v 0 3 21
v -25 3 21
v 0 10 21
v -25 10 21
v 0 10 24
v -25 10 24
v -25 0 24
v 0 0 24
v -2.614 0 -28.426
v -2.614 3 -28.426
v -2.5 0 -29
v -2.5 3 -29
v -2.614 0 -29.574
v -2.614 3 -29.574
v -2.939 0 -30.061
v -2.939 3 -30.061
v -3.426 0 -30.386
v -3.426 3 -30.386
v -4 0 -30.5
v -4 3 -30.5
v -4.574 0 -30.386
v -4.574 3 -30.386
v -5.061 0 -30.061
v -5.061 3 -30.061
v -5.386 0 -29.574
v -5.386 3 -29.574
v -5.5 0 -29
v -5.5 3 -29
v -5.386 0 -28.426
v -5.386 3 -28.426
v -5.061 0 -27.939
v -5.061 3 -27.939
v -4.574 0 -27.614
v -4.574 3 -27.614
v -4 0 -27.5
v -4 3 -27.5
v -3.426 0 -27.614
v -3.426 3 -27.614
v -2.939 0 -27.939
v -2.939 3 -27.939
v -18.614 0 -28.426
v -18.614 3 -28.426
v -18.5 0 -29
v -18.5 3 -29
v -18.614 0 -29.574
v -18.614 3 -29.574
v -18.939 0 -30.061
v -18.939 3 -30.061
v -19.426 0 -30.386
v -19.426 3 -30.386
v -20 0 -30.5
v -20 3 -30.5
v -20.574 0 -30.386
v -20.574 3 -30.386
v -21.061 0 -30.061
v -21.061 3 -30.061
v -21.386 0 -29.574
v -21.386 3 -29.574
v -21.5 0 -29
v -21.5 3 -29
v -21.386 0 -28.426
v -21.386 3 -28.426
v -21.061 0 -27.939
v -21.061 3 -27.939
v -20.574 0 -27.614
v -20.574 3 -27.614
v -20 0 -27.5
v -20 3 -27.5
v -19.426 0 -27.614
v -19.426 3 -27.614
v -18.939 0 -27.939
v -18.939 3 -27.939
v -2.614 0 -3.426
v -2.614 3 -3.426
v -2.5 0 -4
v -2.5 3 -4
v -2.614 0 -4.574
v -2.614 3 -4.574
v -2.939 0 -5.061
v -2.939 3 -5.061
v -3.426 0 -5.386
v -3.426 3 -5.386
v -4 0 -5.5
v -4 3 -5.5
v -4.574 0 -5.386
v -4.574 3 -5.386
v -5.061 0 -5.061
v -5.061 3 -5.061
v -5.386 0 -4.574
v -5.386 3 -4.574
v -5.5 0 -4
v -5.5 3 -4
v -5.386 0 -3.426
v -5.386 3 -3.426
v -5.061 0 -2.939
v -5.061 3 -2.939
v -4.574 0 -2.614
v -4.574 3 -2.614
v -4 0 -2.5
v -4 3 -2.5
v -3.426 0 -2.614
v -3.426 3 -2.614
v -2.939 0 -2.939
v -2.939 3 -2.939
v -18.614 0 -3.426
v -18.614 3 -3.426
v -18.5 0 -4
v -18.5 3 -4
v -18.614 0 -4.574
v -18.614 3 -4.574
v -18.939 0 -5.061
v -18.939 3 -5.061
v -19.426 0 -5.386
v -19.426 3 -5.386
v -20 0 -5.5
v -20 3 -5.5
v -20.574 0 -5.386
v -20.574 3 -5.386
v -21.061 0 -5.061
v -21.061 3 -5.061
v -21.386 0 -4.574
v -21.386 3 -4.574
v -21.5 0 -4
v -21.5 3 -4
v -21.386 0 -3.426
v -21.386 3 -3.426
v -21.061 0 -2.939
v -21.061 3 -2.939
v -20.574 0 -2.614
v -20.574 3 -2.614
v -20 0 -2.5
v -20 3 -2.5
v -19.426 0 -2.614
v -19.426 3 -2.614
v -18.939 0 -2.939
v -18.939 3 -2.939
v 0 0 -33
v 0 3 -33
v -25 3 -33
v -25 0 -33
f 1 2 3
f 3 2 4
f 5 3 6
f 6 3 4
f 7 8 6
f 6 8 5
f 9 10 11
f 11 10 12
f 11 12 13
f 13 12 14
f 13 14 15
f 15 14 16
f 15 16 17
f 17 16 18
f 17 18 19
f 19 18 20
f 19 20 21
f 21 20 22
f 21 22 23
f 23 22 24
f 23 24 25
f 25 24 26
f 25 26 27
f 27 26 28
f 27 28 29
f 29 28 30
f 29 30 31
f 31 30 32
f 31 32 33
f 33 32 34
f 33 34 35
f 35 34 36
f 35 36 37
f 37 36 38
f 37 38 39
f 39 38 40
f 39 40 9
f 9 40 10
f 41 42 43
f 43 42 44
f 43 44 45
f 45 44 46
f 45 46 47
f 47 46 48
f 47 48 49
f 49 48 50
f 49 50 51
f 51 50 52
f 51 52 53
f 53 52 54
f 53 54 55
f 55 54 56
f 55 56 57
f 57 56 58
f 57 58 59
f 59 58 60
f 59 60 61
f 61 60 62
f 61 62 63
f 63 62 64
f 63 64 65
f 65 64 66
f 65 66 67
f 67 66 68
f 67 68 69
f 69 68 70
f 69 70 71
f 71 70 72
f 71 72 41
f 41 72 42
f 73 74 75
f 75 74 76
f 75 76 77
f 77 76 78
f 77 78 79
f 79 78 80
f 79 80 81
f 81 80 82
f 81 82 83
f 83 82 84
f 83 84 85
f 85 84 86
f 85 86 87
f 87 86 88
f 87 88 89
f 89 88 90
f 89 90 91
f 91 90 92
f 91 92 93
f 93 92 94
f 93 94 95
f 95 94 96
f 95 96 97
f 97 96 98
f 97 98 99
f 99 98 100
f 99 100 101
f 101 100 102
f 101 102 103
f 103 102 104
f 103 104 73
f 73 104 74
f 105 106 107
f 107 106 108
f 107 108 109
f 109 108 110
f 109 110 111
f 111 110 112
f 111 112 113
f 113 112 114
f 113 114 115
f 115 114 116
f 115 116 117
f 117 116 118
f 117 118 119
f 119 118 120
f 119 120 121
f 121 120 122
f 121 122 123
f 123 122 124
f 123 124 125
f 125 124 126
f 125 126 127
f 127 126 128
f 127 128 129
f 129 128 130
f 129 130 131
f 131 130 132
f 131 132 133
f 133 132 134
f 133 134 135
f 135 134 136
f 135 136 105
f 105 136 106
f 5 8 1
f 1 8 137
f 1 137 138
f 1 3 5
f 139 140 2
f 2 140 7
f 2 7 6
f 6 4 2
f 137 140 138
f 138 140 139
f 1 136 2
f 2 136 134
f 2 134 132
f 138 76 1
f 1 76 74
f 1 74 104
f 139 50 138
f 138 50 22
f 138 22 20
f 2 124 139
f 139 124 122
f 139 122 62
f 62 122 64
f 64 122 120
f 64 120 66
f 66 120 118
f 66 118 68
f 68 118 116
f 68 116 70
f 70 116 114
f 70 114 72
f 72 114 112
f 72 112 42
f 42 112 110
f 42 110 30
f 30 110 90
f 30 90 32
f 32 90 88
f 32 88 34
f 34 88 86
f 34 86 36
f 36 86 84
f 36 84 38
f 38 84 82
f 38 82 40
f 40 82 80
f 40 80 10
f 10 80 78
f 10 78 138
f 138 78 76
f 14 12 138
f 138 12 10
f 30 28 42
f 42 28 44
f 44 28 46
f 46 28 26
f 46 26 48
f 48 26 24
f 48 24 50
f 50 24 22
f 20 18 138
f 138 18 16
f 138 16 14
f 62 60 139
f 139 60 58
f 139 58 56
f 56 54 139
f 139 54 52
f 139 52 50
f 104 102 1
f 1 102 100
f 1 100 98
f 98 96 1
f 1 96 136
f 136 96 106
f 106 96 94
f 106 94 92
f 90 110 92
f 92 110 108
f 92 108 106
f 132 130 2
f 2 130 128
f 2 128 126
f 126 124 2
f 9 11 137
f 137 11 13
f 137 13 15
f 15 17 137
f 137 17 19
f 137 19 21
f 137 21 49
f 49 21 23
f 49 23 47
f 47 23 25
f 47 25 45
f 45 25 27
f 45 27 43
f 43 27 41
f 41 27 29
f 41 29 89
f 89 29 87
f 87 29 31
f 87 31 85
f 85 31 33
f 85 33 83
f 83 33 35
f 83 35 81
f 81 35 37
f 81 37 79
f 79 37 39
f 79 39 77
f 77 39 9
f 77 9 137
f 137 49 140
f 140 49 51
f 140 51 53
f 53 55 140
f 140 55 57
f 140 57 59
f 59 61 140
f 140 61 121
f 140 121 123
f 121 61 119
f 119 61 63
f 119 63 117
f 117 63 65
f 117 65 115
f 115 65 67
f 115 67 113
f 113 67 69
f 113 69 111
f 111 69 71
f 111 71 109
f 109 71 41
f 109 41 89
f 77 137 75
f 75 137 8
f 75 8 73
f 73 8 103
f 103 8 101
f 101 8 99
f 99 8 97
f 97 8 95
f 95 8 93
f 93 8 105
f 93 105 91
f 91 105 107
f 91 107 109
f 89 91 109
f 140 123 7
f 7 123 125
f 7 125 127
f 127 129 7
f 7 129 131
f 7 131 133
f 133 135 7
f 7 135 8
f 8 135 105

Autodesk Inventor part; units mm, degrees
ref_plane "YZ Plane" through (0, 0, 0) normal (1, 0, 0) x (0, 1, 0)
ref_plane "XZ Plane" through (0, 0, 0) normal (0, 1, 0) x (-1, 0, 0)
ref_plane "XY Plane" through (0, 0, 0) normal (0, 0, 1) x (1, 0, 0)
sketch "Sketch3" plane through (0, 0, 0) normal (0, 1, 0) x (-1, 0, 0)
  line L0 (0, 0) -> (25, 0)
  line L1 (25, 0) -> (25, -33)
  line L2 (25, -33) -> (0, -33)
  line L3 (0, -33) -> (0, 0)
  dimension "d6" = 25
  dimension "d7" = 33
extrude "Extrusion2" add sketch "Sketch3" along normal blind 3
sketch "Sketch4" plane through (0, 3, 0) normal (0, 1, 0) x (1, 0, 0)
  circle A0 centre (-4, 4) radius 1.5
  line L0 (0, 0) -> (0, 33) projected
  line L1 (-25, 0) -> (0, 0) projected
  circle A1 centre (-4, 29) radius 1.5
  line L2 (0, 33) -> (-25, 33) projected
  circle A2 centre (-20, 4) radius 1.5
  line L3 (-25, 33) -> (-25, 0) projected
  circle A3 centre (-20, 29) radius 1.5
  dimension "d16" = 3
  dimension "d17" = 4
  dimension "d18" = 4
  dimension "d19" = 3
  dimension "d20" = 4
  dimension "d21" = 4
  dimension "d22" = 3
  dimension "d23" = 16
  dimension "d24" = 4
  dimension "d25" = 5
  dimension "d26" = 3
  dimension "d27" = 4
  dimension "d28" = 16
  dimension "d29" = 25
extrude "Extrusion3" cut sketch "Sketch4" against normal blind 3 contours A0 | A1 | A2 | A3
sketch "Sketch7" plane through (0, 3, 0) normal (0, 1, 0) x (1, 0, 0)
  line L0 (-25, 33) -> (-25, 0) projected
  line L1 (-25, 0) -> (0, 0)
  line L2 (0, 0) -> (0, -24)
  line L3 (0, -24) -> (-25, -24)
  line L4 (-25, -24) -> (-25, 0)
  dimension "d55" = 24
extrude "Extrusion6" add sketch "Sketch7" against normal blind 3
sketch "Sketch8" plane through (0, 3, 0) normal (0, 1, 0) x (1, 0, 0)
  line L0 (0, -24) -> (-25, -24) projected
  line L1 (-25, -24) -> (0, -24)
  line L2 (0, -24) -> (0, -21)
  line L3 (0, -21) -> (-25, -21)
  line L4 (-25, -21) -> (-25, -24)
  point P0 (0, 0)
  dimension "d58" = 25
  dimension "d59" = 3
extrude "Extrusion7" add sketch "Sketch8" along normal blind 7
properties part number "CamBracket"
